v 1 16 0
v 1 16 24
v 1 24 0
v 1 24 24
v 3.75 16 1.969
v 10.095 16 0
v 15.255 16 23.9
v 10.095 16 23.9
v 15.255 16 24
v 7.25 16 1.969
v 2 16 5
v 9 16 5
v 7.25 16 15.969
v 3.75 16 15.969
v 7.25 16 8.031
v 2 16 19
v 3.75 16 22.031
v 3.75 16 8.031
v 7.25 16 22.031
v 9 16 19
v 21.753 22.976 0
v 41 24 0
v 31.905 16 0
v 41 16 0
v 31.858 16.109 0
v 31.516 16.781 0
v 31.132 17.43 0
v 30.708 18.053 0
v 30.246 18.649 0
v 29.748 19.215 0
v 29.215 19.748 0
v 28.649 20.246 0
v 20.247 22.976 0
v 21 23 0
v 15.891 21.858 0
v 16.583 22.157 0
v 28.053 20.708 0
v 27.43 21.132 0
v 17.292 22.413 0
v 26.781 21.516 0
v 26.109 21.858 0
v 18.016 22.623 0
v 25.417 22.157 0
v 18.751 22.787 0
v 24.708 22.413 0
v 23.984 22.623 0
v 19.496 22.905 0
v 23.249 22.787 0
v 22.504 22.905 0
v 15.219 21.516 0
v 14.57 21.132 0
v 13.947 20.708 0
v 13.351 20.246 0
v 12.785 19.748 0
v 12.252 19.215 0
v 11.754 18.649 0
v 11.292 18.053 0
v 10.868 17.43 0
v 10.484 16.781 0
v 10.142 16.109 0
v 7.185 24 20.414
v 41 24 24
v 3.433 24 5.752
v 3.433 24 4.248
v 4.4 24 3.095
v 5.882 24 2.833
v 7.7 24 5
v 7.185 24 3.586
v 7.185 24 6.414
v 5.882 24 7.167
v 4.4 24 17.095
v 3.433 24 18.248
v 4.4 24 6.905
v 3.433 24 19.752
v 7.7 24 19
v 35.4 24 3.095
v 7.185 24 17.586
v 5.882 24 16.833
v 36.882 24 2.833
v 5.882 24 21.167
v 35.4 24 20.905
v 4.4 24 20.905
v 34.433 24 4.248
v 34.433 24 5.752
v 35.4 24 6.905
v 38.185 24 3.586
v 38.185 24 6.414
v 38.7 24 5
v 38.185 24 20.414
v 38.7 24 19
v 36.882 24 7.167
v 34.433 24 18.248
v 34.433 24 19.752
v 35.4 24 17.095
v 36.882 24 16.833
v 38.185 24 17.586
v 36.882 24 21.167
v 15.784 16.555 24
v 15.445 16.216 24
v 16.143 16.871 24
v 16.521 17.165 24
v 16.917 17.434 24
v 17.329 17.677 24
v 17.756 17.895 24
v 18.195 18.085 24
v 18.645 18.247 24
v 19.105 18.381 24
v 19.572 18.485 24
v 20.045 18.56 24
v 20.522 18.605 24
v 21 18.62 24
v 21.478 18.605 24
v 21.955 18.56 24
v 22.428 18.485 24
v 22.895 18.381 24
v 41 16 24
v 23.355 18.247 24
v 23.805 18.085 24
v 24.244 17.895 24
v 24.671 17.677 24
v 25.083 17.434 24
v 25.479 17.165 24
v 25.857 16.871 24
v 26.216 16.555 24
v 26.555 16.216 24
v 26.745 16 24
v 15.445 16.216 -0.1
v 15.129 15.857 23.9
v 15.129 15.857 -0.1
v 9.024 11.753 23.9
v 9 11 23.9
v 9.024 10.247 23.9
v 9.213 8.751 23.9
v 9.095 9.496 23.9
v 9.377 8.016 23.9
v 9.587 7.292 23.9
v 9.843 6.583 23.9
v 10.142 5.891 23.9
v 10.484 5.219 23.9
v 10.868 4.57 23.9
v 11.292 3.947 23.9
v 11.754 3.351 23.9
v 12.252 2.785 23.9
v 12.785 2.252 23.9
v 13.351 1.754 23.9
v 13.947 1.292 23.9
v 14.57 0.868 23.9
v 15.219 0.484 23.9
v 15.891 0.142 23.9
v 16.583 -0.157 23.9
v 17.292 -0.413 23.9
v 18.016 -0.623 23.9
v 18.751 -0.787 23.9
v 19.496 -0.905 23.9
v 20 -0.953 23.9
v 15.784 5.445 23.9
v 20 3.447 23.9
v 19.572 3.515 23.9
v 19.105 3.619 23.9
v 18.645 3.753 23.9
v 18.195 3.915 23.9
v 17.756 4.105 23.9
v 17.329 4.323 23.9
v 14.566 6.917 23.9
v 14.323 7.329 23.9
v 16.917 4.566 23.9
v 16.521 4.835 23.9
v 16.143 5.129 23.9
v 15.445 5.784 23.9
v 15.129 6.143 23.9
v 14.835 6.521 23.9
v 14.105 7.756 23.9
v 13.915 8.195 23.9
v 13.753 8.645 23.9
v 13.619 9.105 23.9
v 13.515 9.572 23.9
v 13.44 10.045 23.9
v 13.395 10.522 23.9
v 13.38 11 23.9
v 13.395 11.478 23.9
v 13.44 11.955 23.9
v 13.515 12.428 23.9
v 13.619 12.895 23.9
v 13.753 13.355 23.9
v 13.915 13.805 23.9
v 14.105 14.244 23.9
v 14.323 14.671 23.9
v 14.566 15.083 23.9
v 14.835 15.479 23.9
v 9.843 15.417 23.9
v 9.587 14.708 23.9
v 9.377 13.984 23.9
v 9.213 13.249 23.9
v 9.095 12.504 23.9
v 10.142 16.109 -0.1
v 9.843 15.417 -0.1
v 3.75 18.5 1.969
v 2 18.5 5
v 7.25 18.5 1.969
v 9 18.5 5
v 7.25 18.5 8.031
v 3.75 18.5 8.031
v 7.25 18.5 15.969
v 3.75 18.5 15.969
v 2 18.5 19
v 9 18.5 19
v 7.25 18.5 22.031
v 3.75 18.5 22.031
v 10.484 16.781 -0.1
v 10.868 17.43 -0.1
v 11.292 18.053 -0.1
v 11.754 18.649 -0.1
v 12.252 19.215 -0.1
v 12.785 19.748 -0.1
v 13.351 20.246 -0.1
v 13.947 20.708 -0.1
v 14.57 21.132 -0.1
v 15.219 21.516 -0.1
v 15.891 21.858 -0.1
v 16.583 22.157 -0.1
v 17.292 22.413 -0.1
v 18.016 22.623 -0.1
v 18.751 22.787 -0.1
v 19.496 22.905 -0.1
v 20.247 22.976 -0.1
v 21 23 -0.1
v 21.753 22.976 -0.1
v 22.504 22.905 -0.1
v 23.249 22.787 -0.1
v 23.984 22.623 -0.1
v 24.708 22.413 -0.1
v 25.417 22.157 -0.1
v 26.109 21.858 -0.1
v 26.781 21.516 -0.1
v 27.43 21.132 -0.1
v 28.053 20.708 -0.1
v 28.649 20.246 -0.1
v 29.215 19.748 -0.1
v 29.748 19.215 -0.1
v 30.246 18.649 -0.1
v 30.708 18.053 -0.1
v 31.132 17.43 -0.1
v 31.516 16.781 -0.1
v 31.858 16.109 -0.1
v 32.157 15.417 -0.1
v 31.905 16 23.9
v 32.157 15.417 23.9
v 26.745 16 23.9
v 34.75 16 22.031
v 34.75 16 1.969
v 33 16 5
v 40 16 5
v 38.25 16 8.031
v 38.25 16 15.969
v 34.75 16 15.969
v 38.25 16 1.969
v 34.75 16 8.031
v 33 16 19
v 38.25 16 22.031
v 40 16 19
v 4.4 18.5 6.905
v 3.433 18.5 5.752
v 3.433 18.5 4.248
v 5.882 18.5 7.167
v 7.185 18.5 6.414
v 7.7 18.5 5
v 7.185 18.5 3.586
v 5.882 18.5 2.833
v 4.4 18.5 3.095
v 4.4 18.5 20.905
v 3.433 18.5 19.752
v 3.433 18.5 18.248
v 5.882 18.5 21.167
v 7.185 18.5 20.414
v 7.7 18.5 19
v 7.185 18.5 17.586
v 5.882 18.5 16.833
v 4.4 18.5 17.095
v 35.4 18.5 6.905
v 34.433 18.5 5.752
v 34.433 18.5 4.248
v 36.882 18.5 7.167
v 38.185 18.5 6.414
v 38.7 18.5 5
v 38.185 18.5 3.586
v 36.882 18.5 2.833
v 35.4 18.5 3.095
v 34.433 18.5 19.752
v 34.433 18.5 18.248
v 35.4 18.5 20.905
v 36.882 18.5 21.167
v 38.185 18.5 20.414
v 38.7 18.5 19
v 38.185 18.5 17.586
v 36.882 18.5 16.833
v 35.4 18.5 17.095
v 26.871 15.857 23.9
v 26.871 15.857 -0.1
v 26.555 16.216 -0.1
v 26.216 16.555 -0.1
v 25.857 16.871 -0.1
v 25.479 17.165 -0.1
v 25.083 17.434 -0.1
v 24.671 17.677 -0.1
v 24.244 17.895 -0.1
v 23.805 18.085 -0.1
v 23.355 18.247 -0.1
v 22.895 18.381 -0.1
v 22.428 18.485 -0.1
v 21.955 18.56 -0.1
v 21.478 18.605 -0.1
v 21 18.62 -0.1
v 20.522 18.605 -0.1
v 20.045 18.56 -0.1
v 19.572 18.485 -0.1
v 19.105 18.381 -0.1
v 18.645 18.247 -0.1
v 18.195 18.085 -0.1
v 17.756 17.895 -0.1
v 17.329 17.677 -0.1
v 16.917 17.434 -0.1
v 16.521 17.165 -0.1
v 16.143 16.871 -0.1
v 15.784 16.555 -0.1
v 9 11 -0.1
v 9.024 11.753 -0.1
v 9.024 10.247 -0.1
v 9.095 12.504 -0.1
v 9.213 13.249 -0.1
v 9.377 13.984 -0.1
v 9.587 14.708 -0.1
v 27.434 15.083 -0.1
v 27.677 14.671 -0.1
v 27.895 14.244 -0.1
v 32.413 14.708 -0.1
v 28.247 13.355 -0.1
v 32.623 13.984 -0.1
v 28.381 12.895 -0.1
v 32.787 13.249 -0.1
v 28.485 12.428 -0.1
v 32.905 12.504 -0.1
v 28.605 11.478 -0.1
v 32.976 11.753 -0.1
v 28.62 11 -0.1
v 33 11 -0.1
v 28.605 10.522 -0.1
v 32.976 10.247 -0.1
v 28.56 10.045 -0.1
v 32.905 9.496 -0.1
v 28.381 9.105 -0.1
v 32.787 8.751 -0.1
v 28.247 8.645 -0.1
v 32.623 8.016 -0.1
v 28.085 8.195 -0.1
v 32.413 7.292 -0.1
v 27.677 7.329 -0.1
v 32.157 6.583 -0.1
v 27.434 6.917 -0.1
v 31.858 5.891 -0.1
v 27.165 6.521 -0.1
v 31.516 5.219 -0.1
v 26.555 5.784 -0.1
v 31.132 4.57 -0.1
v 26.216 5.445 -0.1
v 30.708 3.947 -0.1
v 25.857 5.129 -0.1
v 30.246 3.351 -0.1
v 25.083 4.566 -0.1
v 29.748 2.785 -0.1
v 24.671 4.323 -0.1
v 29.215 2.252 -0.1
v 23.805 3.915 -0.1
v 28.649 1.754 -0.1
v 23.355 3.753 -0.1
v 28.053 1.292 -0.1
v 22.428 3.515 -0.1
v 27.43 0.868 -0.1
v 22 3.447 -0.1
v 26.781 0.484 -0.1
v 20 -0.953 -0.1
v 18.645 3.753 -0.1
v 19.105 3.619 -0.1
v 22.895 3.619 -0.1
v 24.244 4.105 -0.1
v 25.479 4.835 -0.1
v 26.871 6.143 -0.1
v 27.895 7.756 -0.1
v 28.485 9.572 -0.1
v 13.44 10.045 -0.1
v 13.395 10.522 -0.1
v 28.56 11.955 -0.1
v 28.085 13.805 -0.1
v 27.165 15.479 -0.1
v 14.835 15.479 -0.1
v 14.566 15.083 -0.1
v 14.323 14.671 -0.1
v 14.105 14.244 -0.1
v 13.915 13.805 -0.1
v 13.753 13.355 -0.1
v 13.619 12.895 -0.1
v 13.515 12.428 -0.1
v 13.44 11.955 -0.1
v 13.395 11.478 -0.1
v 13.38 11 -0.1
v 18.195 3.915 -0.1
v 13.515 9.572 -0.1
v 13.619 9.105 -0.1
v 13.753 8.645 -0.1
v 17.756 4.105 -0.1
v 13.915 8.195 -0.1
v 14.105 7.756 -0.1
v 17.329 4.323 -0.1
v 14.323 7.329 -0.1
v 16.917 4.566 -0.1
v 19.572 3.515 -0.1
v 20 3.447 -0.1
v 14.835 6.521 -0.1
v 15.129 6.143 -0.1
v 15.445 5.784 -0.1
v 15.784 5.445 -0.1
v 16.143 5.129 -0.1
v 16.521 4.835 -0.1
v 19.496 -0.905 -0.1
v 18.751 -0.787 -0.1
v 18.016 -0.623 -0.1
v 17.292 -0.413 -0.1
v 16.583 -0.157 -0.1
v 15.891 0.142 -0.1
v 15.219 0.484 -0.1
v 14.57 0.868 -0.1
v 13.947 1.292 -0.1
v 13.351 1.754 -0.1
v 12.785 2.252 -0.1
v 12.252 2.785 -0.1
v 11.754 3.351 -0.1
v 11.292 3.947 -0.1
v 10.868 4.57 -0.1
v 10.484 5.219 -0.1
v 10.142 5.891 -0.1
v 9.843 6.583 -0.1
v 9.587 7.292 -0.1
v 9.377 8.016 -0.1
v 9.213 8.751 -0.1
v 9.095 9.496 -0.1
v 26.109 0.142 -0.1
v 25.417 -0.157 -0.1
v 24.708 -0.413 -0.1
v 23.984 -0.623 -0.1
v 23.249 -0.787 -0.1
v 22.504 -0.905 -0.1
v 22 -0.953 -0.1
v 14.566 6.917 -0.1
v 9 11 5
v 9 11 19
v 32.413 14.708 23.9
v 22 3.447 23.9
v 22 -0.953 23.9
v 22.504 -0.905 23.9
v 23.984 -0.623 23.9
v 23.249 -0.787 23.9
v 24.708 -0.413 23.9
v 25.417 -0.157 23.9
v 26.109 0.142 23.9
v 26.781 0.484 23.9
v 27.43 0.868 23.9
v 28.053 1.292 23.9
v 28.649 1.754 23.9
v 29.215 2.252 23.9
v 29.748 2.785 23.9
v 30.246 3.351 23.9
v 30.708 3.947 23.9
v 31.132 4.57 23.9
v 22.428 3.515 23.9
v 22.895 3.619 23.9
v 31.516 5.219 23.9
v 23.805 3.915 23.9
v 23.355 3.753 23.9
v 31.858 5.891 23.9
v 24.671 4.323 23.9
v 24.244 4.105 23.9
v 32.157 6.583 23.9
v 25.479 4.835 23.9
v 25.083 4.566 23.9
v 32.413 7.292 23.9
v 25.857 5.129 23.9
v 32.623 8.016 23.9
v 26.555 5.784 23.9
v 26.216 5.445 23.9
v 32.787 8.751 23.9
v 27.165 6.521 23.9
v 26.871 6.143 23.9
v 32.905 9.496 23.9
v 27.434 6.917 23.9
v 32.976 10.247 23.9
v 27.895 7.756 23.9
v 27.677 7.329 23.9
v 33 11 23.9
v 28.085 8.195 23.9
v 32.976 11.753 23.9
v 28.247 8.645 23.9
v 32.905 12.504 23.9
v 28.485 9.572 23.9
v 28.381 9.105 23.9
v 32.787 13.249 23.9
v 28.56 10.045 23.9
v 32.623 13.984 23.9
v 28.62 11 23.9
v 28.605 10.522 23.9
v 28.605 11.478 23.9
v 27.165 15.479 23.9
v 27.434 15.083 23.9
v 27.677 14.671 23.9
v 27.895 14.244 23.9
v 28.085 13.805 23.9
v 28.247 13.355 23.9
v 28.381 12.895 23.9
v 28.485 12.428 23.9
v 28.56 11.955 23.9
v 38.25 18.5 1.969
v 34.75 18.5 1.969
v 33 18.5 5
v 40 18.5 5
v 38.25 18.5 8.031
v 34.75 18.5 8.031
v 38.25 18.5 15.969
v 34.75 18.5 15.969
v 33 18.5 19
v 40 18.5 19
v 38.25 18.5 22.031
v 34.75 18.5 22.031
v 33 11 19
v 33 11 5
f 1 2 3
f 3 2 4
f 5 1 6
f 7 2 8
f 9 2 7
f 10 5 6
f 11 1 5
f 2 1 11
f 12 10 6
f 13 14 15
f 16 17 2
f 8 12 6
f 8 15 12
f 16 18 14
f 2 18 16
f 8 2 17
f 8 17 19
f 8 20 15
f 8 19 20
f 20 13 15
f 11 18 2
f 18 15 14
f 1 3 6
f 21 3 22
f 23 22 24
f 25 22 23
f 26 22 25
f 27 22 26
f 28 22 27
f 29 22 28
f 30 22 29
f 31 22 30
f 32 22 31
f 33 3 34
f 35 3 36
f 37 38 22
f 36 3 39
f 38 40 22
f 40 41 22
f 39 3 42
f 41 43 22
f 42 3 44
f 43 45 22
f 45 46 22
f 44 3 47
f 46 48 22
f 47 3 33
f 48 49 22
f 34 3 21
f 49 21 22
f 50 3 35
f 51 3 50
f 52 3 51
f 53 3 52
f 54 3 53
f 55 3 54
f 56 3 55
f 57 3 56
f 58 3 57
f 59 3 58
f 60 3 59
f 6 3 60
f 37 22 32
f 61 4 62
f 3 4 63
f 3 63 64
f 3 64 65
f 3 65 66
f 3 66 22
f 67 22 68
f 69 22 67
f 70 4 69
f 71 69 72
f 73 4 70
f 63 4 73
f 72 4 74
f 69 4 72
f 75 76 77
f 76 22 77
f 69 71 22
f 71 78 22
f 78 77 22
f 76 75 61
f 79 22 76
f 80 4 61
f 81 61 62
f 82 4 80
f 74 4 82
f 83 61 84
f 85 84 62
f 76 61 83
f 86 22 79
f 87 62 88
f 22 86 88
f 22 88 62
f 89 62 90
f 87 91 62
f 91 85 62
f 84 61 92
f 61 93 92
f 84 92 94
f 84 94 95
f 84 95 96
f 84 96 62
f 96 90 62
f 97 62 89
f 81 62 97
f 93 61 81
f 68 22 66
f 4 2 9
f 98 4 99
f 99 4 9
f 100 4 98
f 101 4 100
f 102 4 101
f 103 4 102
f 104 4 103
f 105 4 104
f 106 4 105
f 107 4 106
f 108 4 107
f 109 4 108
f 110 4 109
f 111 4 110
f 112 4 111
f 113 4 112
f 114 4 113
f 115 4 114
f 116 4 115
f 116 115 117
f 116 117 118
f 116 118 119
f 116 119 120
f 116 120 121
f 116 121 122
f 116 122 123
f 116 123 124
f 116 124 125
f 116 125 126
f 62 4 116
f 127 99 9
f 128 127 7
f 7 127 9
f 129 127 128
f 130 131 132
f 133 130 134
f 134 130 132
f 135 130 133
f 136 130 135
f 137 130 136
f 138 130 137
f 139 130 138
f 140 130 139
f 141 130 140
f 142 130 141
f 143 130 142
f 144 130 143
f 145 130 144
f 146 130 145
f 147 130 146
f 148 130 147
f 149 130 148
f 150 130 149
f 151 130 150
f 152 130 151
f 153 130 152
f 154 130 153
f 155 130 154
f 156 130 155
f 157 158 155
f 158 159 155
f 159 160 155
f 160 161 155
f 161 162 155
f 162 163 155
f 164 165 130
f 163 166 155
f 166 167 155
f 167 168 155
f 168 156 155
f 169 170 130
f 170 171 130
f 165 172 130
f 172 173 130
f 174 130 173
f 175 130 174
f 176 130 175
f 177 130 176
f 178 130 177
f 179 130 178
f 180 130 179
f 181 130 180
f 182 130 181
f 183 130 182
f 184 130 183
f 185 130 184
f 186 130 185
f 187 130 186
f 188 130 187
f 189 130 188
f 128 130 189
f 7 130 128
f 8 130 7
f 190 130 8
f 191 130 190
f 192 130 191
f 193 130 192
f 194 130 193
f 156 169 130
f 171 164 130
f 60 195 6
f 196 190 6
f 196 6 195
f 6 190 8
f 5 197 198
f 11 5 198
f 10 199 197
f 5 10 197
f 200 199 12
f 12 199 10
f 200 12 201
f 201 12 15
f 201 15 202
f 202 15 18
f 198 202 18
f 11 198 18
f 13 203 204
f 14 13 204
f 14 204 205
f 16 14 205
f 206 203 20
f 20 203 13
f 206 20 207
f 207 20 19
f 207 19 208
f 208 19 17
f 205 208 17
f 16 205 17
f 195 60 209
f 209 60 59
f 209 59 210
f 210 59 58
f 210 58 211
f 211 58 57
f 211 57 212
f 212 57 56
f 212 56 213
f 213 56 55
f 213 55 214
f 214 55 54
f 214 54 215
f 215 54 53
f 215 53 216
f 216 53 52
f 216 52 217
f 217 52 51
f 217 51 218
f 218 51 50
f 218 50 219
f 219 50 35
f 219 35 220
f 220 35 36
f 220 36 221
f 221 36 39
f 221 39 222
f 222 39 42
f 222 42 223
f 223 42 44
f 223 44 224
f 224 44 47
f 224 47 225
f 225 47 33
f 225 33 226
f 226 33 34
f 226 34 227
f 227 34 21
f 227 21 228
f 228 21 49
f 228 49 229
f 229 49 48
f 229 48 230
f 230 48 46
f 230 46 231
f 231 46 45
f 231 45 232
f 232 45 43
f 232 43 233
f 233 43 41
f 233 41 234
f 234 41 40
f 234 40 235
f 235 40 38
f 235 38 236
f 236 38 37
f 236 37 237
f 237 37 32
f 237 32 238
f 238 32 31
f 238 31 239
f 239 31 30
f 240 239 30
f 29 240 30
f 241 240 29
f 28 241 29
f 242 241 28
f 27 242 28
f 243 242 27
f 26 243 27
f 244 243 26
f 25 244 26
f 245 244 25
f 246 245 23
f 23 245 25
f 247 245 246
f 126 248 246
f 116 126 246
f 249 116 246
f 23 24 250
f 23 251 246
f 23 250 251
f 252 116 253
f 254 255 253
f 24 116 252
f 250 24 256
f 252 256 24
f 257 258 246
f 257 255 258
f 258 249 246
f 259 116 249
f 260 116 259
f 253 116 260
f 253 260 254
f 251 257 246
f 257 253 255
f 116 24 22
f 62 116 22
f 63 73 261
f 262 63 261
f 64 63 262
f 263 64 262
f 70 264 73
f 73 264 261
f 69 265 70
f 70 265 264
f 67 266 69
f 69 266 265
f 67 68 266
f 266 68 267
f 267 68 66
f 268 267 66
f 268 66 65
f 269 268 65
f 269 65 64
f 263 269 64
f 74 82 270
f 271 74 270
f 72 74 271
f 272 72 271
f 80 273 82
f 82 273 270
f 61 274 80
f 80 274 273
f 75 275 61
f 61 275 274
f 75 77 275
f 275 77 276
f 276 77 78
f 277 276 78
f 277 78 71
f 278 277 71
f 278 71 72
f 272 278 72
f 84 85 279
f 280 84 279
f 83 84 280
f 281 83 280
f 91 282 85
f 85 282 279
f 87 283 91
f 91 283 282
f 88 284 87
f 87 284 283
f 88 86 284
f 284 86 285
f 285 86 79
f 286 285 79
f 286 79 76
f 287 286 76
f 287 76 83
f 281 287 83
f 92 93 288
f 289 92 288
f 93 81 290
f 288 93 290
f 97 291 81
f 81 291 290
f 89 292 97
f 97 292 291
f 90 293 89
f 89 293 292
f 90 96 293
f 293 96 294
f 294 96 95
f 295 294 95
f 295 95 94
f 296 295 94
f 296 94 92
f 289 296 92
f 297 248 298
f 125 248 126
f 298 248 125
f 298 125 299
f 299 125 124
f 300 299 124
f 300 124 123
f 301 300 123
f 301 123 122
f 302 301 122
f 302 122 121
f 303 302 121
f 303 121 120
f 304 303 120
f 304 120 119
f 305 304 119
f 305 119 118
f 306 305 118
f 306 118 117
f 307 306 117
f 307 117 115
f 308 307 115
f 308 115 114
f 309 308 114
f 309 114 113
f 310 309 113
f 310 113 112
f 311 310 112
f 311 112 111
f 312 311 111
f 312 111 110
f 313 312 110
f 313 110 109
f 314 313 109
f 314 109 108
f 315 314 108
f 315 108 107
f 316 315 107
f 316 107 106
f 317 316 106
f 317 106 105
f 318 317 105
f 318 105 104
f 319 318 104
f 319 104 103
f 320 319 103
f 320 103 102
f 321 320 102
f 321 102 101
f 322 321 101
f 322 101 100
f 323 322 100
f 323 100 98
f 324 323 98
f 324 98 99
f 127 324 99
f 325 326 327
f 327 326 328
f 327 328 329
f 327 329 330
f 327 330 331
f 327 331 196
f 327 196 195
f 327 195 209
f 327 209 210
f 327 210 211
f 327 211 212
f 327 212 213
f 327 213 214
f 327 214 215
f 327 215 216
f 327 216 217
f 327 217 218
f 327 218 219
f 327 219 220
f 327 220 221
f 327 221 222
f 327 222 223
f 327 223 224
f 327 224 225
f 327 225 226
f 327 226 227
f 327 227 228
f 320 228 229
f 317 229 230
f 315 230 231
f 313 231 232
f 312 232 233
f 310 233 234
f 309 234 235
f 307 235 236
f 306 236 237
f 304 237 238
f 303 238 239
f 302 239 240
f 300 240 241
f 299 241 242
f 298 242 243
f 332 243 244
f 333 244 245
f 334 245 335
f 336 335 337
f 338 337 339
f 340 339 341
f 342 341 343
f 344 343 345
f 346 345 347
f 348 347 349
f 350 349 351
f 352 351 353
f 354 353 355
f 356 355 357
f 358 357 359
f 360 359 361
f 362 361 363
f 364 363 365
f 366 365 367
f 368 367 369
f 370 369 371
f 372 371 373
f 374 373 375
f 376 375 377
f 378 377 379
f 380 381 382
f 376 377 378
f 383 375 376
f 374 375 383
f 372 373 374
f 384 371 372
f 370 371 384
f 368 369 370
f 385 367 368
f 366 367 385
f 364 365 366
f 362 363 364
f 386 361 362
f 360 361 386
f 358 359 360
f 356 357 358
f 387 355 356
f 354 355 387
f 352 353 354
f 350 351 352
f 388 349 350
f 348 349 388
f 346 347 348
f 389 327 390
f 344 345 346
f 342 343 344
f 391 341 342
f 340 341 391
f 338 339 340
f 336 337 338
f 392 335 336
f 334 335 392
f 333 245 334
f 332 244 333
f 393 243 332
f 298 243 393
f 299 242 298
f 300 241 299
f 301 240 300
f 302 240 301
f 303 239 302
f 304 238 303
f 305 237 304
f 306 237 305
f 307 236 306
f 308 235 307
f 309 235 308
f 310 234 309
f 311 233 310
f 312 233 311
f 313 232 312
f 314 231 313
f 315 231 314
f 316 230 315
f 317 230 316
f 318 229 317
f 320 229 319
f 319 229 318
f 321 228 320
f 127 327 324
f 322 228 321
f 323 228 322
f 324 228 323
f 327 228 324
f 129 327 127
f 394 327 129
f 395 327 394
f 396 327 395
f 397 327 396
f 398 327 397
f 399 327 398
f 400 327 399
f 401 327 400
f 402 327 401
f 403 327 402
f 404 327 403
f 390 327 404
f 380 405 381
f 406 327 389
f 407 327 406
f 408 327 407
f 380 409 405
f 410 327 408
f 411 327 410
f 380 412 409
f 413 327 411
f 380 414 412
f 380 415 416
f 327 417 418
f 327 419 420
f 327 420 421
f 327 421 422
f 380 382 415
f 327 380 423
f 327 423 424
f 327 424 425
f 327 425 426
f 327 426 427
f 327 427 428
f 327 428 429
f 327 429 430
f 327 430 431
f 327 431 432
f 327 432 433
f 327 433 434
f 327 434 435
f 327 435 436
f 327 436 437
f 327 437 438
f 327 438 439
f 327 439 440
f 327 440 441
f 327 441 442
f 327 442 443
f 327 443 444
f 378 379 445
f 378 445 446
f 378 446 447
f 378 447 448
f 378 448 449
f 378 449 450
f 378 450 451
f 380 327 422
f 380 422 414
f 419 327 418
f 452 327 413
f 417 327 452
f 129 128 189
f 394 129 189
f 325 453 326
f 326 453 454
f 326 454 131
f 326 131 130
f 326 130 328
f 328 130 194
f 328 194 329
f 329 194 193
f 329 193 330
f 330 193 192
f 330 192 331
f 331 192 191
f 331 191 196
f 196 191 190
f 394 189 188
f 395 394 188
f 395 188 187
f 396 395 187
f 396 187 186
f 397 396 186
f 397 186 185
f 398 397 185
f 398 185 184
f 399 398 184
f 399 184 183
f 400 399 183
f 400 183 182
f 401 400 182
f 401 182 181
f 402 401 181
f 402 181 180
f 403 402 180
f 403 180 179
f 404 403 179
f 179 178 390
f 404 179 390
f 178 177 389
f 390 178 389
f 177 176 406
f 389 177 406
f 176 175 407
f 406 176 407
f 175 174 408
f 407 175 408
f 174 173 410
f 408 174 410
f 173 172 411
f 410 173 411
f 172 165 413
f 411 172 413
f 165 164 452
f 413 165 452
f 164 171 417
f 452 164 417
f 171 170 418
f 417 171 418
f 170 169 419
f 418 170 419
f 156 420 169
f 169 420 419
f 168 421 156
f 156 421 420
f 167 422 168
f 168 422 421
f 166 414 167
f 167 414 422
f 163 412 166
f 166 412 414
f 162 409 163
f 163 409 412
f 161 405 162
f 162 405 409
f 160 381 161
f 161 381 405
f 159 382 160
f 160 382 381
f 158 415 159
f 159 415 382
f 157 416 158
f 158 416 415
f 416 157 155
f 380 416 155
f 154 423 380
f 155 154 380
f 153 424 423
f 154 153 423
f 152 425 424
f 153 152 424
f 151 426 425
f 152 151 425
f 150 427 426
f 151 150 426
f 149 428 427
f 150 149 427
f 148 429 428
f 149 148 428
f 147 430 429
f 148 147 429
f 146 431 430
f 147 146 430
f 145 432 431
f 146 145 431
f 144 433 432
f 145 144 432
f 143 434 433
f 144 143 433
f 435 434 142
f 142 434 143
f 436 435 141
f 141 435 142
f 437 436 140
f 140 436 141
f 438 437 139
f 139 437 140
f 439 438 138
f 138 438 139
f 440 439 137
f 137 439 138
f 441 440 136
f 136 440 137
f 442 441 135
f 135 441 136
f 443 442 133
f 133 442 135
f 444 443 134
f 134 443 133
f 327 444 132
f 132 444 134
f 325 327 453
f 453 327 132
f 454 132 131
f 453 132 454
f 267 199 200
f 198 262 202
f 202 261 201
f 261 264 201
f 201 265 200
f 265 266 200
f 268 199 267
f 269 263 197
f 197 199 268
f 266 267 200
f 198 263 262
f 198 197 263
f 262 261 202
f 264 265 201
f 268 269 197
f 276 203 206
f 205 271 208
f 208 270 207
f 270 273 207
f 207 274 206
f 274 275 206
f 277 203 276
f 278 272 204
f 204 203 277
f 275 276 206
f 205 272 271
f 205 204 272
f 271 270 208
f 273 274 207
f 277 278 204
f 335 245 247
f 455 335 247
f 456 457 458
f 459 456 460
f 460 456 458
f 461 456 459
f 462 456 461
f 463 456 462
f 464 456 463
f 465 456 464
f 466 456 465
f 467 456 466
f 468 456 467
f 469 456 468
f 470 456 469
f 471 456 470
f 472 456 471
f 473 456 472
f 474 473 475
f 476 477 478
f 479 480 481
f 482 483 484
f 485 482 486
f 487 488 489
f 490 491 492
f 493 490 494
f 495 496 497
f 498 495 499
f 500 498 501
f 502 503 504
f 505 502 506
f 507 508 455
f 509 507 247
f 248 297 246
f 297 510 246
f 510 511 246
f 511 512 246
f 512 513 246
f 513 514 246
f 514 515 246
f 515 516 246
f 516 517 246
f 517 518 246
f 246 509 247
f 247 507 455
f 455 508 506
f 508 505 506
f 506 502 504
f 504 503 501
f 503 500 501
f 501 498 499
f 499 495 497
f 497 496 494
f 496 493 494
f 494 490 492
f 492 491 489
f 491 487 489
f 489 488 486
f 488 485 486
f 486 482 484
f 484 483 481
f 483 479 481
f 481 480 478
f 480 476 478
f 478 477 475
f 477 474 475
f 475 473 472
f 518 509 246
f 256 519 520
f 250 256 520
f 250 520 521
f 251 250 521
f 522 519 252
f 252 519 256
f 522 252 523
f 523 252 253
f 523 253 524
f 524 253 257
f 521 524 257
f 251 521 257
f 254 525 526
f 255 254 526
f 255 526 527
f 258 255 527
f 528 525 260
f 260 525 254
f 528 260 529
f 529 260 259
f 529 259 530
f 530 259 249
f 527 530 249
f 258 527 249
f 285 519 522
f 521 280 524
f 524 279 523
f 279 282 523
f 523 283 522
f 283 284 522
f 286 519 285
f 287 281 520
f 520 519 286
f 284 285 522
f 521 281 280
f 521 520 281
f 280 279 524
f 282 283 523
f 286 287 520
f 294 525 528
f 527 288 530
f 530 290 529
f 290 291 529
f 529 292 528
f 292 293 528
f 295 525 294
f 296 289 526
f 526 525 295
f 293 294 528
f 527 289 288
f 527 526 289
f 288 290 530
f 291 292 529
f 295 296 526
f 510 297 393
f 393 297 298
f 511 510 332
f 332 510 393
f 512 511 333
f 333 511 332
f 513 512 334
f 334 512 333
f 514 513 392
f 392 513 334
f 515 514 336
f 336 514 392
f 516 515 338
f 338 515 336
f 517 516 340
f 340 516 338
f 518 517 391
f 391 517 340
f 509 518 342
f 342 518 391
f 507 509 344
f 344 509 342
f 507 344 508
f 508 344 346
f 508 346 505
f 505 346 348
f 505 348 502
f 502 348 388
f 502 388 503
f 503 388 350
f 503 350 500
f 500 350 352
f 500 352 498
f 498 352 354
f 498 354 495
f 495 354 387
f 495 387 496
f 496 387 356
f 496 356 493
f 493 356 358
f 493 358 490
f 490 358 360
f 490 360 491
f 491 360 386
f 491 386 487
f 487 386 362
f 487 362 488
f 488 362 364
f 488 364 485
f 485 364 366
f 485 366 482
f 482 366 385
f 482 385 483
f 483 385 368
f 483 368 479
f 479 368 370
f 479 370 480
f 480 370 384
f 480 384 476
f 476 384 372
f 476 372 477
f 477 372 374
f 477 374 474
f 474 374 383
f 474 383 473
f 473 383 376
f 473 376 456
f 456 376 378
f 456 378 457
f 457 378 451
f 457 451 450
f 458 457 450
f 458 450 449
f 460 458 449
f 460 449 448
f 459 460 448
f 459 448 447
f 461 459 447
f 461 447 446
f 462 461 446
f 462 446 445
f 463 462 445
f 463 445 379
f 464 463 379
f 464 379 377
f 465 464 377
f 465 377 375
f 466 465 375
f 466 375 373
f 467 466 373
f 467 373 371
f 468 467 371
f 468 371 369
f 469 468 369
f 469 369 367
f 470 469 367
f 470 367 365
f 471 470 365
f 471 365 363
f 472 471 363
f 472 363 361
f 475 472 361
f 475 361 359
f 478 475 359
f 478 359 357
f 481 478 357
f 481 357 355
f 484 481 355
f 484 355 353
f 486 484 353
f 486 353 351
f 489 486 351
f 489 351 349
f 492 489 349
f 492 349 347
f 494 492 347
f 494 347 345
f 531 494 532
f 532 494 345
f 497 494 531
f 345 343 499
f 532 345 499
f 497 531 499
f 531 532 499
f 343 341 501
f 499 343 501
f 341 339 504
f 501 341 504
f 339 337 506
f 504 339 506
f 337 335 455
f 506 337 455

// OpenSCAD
m3_nut_diameter= 7;
m3_diameter=4.4;

module block(){


difference(){
union(){
difference(){
// cube([22,22,24]); 


//translate([11,11,3]) cylinder(72,7.55,7.55,$fn=100);
//translate([11,11,-0.1]) cylinder(72,6,6,$fn=100);

}


translate([-9,16,0]) cube ([40,8,24]);

translate([11,11,-0.1]) cylinder(24,12,12,$fn=100);

 

}


translate([10,-2,-0.1]) cube([2,14,26]); 

translate([11,11,3]) cylinder(72,7.55,7.55,$fn=100);
translate([11,11,-0.1]) cylinder(72,6,6,$fn=100);

// UNCOMMENT FOR NO END STOP
translate([11,11,-0.1]) cylinder(72,7.62,7.62,$fn=100);

translate(v = [-4.5,14, 5]) rotate(a=[270,0,0]) cylinder(h = 9, r=m3_nut_diameter/2, $fn=6, center=true); // M3 hex 
translate(v = [-4.5, 14, 5]) rotate(a=[270,0,0]) cylinder(h = 100, r=m3_diameter/2, $fn=9, center=true); // M3 hole

translate(v = [26.5,14, 5]) rotate(a=[270,0,0]) cylinder(h = 9, r=m3_nut_diameter/2, $fn=6, center=true); // M3 hex 
translate(v = [26.5, 14, 5]) rotate(a=[270,0,0]) cylinder(h = 100, r=m3_diameter/2, $fn=9, center=true); // M3 hole

translate(v = [-4.5,14, 19]) rotate(a=[270,0,0]) cylinder(h = 9, r=m3_nut_diameter/2, $fn=6, center=true); // M3 hex 
translate(v = [-4.5, 14,19]) rotate(a=[270,0,0]) cylinder(h = 100, r=m3_diameter/2, $fn=9, center=true); // M3 hole

translate(v = [26.5,14,19]) rotate(a=[270,0,0]) cylinder(h = 9, r=m3_nut_diameter/2, $fn=6, center=true); // M3 hex 
translate(v = [26.5, 14, 19]) rotate(a=[270,0,0]) cylinder(h = 100, r=m3_diameter/2, $fn=9, center=true); // M3 hole


//translate(v = [-4, -8, 2]) rotate(a=[270,0,0]) cylinder(h = 9, r=m3_nut_diameter/2, $fn=6, center=true); // M3 hex
//translate(v = [-4, -8, 3.75]) rotate(a=[270,0,0]) cylinder(h = 100, r=m3_diameter/2, $fn=9, center=true); // M3 hole

}
}

translate([10,0,0])
block();

//translate(v = [-4,20, 5]) rotate(a=[270,0,0]) cylinder(h = 9, r=m3_nut_diameter/2, $fn=6, center=true); // M3 hex 
//translate(v = [-4, 20, 5]) rotate(a=[270,0,0]) cylinder(h = 100, r=m3_diameter/2, $fn=9, center=true); // M3 hole
//translate(v = [-4, -8, 2]) rotate(a=[270,0,0]) cylinder(h = 9, r=m3_nut_diameter/2, $fn=6, center=true); // M3 hex
//translate(v = [-4, -8, 3.75]) rotate(a=[270,0,0]) cylinder(h = 100, r=m3_diameter/2, $fn=9, center=true); // M3 hole
